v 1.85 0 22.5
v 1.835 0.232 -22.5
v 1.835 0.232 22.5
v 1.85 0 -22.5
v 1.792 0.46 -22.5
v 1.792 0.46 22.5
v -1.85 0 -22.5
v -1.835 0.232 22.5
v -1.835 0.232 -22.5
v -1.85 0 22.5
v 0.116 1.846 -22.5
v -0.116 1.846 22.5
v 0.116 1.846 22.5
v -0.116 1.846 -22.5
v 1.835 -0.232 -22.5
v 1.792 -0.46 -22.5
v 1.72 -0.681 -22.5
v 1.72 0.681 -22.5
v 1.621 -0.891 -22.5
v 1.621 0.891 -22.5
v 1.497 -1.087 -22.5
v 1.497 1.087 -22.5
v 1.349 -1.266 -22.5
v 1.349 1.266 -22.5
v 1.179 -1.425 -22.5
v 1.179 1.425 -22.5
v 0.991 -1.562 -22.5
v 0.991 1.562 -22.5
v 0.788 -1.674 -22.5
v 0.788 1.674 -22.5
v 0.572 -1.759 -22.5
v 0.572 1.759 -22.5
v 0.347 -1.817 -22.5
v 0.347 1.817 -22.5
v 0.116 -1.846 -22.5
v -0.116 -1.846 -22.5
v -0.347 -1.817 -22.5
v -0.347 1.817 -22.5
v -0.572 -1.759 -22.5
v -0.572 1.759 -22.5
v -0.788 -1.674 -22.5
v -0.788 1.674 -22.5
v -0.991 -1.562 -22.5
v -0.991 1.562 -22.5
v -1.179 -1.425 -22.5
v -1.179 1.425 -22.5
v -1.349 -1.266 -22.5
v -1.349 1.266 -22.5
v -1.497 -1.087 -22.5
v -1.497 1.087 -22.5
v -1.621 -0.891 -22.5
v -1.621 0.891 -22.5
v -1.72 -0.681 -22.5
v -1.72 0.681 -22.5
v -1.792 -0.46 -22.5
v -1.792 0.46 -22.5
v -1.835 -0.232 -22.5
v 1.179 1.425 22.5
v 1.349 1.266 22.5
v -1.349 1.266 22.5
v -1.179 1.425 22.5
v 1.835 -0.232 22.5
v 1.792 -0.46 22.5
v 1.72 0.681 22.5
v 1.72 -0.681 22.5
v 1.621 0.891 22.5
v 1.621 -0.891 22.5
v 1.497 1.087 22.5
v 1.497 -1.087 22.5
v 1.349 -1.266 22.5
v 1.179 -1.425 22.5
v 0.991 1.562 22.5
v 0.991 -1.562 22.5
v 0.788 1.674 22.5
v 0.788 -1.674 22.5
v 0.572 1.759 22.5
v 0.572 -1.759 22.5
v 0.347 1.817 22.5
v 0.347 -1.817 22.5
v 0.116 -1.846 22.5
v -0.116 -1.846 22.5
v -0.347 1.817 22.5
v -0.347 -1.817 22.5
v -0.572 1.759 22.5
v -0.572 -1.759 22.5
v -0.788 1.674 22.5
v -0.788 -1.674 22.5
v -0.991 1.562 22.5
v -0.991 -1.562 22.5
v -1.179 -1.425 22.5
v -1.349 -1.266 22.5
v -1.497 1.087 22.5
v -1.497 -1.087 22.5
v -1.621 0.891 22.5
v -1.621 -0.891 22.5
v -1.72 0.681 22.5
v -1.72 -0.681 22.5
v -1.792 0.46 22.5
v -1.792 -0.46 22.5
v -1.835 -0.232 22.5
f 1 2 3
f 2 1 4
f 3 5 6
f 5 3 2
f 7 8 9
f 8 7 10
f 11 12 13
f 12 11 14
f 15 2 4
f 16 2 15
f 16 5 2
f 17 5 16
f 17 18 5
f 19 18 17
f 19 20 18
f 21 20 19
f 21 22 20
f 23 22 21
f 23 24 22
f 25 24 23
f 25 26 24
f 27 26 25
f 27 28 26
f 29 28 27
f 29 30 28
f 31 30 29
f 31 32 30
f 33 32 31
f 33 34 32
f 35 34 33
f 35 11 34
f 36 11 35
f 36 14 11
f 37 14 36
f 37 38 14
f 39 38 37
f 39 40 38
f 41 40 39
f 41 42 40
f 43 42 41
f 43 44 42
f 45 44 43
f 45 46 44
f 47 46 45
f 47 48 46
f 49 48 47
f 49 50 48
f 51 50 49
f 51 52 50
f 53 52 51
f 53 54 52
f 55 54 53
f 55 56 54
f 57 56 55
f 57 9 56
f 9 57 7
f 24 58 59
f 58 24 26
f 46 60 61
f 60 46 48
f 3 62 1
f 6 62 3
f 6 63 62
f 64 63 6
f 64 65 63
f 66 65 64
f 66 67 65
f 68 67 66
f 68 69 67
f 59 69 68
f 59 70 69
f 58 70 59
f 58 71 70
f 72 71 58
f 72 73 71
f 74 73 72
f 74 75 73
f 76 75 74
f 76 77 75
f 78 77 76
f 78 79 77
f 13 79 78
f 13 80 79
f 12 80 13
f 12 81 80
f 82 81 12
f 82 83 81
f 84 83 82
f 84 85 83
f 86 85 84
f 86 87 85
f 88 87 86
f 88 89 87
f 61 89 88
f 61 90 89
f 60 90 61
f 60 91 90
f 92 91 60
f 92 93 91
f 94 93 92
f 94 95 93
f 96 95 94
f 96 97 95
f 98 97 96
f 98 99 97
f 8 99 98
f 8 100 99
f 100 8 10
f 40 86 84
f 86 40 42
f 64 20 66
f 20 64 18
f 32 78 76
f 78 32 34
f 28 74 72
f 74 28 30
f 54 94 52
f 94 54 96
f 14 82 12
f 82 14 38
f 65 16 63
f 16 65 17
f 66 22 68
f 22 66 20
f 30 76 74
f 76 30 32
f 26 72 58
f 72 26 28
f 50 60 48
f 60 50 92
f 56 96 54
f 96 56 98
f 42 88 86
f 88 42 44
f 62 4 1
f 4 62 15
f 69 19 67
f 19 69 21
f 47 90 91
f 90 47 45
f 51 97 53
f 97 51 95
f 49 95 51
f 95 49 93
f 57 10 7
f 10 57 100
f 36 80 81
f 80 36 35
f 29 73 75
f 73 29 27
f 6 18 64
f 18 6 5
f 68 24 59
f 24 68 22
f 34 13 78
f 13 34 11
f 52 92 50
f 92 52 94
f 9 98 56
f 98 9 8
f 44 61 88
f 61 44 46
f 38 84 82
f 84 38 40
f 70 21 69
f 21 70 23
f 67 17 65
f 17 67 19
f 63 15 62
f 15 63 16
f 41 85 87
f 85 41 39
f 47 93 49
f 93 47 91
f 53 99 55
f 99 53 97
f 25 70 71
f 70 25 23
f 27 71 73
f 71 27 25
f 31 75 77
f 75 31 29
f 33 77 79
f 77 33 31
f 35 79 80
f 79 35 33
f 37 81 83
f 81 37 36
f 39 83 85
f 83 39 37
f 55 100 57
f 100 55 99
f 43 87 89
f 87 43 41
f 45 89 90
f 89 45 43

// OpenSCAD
$fn = 50;


difference() {
	union() {
		translate(v = [0, 0, -22.5000000000]) {
			cylinder(h = 45, r = 1.8500000000);
		}
	}
	union() {
		translate(v = [0, 0, -100.0000000000]) {
			cylinder(h = 200, r = 0);
		}
	}
}
